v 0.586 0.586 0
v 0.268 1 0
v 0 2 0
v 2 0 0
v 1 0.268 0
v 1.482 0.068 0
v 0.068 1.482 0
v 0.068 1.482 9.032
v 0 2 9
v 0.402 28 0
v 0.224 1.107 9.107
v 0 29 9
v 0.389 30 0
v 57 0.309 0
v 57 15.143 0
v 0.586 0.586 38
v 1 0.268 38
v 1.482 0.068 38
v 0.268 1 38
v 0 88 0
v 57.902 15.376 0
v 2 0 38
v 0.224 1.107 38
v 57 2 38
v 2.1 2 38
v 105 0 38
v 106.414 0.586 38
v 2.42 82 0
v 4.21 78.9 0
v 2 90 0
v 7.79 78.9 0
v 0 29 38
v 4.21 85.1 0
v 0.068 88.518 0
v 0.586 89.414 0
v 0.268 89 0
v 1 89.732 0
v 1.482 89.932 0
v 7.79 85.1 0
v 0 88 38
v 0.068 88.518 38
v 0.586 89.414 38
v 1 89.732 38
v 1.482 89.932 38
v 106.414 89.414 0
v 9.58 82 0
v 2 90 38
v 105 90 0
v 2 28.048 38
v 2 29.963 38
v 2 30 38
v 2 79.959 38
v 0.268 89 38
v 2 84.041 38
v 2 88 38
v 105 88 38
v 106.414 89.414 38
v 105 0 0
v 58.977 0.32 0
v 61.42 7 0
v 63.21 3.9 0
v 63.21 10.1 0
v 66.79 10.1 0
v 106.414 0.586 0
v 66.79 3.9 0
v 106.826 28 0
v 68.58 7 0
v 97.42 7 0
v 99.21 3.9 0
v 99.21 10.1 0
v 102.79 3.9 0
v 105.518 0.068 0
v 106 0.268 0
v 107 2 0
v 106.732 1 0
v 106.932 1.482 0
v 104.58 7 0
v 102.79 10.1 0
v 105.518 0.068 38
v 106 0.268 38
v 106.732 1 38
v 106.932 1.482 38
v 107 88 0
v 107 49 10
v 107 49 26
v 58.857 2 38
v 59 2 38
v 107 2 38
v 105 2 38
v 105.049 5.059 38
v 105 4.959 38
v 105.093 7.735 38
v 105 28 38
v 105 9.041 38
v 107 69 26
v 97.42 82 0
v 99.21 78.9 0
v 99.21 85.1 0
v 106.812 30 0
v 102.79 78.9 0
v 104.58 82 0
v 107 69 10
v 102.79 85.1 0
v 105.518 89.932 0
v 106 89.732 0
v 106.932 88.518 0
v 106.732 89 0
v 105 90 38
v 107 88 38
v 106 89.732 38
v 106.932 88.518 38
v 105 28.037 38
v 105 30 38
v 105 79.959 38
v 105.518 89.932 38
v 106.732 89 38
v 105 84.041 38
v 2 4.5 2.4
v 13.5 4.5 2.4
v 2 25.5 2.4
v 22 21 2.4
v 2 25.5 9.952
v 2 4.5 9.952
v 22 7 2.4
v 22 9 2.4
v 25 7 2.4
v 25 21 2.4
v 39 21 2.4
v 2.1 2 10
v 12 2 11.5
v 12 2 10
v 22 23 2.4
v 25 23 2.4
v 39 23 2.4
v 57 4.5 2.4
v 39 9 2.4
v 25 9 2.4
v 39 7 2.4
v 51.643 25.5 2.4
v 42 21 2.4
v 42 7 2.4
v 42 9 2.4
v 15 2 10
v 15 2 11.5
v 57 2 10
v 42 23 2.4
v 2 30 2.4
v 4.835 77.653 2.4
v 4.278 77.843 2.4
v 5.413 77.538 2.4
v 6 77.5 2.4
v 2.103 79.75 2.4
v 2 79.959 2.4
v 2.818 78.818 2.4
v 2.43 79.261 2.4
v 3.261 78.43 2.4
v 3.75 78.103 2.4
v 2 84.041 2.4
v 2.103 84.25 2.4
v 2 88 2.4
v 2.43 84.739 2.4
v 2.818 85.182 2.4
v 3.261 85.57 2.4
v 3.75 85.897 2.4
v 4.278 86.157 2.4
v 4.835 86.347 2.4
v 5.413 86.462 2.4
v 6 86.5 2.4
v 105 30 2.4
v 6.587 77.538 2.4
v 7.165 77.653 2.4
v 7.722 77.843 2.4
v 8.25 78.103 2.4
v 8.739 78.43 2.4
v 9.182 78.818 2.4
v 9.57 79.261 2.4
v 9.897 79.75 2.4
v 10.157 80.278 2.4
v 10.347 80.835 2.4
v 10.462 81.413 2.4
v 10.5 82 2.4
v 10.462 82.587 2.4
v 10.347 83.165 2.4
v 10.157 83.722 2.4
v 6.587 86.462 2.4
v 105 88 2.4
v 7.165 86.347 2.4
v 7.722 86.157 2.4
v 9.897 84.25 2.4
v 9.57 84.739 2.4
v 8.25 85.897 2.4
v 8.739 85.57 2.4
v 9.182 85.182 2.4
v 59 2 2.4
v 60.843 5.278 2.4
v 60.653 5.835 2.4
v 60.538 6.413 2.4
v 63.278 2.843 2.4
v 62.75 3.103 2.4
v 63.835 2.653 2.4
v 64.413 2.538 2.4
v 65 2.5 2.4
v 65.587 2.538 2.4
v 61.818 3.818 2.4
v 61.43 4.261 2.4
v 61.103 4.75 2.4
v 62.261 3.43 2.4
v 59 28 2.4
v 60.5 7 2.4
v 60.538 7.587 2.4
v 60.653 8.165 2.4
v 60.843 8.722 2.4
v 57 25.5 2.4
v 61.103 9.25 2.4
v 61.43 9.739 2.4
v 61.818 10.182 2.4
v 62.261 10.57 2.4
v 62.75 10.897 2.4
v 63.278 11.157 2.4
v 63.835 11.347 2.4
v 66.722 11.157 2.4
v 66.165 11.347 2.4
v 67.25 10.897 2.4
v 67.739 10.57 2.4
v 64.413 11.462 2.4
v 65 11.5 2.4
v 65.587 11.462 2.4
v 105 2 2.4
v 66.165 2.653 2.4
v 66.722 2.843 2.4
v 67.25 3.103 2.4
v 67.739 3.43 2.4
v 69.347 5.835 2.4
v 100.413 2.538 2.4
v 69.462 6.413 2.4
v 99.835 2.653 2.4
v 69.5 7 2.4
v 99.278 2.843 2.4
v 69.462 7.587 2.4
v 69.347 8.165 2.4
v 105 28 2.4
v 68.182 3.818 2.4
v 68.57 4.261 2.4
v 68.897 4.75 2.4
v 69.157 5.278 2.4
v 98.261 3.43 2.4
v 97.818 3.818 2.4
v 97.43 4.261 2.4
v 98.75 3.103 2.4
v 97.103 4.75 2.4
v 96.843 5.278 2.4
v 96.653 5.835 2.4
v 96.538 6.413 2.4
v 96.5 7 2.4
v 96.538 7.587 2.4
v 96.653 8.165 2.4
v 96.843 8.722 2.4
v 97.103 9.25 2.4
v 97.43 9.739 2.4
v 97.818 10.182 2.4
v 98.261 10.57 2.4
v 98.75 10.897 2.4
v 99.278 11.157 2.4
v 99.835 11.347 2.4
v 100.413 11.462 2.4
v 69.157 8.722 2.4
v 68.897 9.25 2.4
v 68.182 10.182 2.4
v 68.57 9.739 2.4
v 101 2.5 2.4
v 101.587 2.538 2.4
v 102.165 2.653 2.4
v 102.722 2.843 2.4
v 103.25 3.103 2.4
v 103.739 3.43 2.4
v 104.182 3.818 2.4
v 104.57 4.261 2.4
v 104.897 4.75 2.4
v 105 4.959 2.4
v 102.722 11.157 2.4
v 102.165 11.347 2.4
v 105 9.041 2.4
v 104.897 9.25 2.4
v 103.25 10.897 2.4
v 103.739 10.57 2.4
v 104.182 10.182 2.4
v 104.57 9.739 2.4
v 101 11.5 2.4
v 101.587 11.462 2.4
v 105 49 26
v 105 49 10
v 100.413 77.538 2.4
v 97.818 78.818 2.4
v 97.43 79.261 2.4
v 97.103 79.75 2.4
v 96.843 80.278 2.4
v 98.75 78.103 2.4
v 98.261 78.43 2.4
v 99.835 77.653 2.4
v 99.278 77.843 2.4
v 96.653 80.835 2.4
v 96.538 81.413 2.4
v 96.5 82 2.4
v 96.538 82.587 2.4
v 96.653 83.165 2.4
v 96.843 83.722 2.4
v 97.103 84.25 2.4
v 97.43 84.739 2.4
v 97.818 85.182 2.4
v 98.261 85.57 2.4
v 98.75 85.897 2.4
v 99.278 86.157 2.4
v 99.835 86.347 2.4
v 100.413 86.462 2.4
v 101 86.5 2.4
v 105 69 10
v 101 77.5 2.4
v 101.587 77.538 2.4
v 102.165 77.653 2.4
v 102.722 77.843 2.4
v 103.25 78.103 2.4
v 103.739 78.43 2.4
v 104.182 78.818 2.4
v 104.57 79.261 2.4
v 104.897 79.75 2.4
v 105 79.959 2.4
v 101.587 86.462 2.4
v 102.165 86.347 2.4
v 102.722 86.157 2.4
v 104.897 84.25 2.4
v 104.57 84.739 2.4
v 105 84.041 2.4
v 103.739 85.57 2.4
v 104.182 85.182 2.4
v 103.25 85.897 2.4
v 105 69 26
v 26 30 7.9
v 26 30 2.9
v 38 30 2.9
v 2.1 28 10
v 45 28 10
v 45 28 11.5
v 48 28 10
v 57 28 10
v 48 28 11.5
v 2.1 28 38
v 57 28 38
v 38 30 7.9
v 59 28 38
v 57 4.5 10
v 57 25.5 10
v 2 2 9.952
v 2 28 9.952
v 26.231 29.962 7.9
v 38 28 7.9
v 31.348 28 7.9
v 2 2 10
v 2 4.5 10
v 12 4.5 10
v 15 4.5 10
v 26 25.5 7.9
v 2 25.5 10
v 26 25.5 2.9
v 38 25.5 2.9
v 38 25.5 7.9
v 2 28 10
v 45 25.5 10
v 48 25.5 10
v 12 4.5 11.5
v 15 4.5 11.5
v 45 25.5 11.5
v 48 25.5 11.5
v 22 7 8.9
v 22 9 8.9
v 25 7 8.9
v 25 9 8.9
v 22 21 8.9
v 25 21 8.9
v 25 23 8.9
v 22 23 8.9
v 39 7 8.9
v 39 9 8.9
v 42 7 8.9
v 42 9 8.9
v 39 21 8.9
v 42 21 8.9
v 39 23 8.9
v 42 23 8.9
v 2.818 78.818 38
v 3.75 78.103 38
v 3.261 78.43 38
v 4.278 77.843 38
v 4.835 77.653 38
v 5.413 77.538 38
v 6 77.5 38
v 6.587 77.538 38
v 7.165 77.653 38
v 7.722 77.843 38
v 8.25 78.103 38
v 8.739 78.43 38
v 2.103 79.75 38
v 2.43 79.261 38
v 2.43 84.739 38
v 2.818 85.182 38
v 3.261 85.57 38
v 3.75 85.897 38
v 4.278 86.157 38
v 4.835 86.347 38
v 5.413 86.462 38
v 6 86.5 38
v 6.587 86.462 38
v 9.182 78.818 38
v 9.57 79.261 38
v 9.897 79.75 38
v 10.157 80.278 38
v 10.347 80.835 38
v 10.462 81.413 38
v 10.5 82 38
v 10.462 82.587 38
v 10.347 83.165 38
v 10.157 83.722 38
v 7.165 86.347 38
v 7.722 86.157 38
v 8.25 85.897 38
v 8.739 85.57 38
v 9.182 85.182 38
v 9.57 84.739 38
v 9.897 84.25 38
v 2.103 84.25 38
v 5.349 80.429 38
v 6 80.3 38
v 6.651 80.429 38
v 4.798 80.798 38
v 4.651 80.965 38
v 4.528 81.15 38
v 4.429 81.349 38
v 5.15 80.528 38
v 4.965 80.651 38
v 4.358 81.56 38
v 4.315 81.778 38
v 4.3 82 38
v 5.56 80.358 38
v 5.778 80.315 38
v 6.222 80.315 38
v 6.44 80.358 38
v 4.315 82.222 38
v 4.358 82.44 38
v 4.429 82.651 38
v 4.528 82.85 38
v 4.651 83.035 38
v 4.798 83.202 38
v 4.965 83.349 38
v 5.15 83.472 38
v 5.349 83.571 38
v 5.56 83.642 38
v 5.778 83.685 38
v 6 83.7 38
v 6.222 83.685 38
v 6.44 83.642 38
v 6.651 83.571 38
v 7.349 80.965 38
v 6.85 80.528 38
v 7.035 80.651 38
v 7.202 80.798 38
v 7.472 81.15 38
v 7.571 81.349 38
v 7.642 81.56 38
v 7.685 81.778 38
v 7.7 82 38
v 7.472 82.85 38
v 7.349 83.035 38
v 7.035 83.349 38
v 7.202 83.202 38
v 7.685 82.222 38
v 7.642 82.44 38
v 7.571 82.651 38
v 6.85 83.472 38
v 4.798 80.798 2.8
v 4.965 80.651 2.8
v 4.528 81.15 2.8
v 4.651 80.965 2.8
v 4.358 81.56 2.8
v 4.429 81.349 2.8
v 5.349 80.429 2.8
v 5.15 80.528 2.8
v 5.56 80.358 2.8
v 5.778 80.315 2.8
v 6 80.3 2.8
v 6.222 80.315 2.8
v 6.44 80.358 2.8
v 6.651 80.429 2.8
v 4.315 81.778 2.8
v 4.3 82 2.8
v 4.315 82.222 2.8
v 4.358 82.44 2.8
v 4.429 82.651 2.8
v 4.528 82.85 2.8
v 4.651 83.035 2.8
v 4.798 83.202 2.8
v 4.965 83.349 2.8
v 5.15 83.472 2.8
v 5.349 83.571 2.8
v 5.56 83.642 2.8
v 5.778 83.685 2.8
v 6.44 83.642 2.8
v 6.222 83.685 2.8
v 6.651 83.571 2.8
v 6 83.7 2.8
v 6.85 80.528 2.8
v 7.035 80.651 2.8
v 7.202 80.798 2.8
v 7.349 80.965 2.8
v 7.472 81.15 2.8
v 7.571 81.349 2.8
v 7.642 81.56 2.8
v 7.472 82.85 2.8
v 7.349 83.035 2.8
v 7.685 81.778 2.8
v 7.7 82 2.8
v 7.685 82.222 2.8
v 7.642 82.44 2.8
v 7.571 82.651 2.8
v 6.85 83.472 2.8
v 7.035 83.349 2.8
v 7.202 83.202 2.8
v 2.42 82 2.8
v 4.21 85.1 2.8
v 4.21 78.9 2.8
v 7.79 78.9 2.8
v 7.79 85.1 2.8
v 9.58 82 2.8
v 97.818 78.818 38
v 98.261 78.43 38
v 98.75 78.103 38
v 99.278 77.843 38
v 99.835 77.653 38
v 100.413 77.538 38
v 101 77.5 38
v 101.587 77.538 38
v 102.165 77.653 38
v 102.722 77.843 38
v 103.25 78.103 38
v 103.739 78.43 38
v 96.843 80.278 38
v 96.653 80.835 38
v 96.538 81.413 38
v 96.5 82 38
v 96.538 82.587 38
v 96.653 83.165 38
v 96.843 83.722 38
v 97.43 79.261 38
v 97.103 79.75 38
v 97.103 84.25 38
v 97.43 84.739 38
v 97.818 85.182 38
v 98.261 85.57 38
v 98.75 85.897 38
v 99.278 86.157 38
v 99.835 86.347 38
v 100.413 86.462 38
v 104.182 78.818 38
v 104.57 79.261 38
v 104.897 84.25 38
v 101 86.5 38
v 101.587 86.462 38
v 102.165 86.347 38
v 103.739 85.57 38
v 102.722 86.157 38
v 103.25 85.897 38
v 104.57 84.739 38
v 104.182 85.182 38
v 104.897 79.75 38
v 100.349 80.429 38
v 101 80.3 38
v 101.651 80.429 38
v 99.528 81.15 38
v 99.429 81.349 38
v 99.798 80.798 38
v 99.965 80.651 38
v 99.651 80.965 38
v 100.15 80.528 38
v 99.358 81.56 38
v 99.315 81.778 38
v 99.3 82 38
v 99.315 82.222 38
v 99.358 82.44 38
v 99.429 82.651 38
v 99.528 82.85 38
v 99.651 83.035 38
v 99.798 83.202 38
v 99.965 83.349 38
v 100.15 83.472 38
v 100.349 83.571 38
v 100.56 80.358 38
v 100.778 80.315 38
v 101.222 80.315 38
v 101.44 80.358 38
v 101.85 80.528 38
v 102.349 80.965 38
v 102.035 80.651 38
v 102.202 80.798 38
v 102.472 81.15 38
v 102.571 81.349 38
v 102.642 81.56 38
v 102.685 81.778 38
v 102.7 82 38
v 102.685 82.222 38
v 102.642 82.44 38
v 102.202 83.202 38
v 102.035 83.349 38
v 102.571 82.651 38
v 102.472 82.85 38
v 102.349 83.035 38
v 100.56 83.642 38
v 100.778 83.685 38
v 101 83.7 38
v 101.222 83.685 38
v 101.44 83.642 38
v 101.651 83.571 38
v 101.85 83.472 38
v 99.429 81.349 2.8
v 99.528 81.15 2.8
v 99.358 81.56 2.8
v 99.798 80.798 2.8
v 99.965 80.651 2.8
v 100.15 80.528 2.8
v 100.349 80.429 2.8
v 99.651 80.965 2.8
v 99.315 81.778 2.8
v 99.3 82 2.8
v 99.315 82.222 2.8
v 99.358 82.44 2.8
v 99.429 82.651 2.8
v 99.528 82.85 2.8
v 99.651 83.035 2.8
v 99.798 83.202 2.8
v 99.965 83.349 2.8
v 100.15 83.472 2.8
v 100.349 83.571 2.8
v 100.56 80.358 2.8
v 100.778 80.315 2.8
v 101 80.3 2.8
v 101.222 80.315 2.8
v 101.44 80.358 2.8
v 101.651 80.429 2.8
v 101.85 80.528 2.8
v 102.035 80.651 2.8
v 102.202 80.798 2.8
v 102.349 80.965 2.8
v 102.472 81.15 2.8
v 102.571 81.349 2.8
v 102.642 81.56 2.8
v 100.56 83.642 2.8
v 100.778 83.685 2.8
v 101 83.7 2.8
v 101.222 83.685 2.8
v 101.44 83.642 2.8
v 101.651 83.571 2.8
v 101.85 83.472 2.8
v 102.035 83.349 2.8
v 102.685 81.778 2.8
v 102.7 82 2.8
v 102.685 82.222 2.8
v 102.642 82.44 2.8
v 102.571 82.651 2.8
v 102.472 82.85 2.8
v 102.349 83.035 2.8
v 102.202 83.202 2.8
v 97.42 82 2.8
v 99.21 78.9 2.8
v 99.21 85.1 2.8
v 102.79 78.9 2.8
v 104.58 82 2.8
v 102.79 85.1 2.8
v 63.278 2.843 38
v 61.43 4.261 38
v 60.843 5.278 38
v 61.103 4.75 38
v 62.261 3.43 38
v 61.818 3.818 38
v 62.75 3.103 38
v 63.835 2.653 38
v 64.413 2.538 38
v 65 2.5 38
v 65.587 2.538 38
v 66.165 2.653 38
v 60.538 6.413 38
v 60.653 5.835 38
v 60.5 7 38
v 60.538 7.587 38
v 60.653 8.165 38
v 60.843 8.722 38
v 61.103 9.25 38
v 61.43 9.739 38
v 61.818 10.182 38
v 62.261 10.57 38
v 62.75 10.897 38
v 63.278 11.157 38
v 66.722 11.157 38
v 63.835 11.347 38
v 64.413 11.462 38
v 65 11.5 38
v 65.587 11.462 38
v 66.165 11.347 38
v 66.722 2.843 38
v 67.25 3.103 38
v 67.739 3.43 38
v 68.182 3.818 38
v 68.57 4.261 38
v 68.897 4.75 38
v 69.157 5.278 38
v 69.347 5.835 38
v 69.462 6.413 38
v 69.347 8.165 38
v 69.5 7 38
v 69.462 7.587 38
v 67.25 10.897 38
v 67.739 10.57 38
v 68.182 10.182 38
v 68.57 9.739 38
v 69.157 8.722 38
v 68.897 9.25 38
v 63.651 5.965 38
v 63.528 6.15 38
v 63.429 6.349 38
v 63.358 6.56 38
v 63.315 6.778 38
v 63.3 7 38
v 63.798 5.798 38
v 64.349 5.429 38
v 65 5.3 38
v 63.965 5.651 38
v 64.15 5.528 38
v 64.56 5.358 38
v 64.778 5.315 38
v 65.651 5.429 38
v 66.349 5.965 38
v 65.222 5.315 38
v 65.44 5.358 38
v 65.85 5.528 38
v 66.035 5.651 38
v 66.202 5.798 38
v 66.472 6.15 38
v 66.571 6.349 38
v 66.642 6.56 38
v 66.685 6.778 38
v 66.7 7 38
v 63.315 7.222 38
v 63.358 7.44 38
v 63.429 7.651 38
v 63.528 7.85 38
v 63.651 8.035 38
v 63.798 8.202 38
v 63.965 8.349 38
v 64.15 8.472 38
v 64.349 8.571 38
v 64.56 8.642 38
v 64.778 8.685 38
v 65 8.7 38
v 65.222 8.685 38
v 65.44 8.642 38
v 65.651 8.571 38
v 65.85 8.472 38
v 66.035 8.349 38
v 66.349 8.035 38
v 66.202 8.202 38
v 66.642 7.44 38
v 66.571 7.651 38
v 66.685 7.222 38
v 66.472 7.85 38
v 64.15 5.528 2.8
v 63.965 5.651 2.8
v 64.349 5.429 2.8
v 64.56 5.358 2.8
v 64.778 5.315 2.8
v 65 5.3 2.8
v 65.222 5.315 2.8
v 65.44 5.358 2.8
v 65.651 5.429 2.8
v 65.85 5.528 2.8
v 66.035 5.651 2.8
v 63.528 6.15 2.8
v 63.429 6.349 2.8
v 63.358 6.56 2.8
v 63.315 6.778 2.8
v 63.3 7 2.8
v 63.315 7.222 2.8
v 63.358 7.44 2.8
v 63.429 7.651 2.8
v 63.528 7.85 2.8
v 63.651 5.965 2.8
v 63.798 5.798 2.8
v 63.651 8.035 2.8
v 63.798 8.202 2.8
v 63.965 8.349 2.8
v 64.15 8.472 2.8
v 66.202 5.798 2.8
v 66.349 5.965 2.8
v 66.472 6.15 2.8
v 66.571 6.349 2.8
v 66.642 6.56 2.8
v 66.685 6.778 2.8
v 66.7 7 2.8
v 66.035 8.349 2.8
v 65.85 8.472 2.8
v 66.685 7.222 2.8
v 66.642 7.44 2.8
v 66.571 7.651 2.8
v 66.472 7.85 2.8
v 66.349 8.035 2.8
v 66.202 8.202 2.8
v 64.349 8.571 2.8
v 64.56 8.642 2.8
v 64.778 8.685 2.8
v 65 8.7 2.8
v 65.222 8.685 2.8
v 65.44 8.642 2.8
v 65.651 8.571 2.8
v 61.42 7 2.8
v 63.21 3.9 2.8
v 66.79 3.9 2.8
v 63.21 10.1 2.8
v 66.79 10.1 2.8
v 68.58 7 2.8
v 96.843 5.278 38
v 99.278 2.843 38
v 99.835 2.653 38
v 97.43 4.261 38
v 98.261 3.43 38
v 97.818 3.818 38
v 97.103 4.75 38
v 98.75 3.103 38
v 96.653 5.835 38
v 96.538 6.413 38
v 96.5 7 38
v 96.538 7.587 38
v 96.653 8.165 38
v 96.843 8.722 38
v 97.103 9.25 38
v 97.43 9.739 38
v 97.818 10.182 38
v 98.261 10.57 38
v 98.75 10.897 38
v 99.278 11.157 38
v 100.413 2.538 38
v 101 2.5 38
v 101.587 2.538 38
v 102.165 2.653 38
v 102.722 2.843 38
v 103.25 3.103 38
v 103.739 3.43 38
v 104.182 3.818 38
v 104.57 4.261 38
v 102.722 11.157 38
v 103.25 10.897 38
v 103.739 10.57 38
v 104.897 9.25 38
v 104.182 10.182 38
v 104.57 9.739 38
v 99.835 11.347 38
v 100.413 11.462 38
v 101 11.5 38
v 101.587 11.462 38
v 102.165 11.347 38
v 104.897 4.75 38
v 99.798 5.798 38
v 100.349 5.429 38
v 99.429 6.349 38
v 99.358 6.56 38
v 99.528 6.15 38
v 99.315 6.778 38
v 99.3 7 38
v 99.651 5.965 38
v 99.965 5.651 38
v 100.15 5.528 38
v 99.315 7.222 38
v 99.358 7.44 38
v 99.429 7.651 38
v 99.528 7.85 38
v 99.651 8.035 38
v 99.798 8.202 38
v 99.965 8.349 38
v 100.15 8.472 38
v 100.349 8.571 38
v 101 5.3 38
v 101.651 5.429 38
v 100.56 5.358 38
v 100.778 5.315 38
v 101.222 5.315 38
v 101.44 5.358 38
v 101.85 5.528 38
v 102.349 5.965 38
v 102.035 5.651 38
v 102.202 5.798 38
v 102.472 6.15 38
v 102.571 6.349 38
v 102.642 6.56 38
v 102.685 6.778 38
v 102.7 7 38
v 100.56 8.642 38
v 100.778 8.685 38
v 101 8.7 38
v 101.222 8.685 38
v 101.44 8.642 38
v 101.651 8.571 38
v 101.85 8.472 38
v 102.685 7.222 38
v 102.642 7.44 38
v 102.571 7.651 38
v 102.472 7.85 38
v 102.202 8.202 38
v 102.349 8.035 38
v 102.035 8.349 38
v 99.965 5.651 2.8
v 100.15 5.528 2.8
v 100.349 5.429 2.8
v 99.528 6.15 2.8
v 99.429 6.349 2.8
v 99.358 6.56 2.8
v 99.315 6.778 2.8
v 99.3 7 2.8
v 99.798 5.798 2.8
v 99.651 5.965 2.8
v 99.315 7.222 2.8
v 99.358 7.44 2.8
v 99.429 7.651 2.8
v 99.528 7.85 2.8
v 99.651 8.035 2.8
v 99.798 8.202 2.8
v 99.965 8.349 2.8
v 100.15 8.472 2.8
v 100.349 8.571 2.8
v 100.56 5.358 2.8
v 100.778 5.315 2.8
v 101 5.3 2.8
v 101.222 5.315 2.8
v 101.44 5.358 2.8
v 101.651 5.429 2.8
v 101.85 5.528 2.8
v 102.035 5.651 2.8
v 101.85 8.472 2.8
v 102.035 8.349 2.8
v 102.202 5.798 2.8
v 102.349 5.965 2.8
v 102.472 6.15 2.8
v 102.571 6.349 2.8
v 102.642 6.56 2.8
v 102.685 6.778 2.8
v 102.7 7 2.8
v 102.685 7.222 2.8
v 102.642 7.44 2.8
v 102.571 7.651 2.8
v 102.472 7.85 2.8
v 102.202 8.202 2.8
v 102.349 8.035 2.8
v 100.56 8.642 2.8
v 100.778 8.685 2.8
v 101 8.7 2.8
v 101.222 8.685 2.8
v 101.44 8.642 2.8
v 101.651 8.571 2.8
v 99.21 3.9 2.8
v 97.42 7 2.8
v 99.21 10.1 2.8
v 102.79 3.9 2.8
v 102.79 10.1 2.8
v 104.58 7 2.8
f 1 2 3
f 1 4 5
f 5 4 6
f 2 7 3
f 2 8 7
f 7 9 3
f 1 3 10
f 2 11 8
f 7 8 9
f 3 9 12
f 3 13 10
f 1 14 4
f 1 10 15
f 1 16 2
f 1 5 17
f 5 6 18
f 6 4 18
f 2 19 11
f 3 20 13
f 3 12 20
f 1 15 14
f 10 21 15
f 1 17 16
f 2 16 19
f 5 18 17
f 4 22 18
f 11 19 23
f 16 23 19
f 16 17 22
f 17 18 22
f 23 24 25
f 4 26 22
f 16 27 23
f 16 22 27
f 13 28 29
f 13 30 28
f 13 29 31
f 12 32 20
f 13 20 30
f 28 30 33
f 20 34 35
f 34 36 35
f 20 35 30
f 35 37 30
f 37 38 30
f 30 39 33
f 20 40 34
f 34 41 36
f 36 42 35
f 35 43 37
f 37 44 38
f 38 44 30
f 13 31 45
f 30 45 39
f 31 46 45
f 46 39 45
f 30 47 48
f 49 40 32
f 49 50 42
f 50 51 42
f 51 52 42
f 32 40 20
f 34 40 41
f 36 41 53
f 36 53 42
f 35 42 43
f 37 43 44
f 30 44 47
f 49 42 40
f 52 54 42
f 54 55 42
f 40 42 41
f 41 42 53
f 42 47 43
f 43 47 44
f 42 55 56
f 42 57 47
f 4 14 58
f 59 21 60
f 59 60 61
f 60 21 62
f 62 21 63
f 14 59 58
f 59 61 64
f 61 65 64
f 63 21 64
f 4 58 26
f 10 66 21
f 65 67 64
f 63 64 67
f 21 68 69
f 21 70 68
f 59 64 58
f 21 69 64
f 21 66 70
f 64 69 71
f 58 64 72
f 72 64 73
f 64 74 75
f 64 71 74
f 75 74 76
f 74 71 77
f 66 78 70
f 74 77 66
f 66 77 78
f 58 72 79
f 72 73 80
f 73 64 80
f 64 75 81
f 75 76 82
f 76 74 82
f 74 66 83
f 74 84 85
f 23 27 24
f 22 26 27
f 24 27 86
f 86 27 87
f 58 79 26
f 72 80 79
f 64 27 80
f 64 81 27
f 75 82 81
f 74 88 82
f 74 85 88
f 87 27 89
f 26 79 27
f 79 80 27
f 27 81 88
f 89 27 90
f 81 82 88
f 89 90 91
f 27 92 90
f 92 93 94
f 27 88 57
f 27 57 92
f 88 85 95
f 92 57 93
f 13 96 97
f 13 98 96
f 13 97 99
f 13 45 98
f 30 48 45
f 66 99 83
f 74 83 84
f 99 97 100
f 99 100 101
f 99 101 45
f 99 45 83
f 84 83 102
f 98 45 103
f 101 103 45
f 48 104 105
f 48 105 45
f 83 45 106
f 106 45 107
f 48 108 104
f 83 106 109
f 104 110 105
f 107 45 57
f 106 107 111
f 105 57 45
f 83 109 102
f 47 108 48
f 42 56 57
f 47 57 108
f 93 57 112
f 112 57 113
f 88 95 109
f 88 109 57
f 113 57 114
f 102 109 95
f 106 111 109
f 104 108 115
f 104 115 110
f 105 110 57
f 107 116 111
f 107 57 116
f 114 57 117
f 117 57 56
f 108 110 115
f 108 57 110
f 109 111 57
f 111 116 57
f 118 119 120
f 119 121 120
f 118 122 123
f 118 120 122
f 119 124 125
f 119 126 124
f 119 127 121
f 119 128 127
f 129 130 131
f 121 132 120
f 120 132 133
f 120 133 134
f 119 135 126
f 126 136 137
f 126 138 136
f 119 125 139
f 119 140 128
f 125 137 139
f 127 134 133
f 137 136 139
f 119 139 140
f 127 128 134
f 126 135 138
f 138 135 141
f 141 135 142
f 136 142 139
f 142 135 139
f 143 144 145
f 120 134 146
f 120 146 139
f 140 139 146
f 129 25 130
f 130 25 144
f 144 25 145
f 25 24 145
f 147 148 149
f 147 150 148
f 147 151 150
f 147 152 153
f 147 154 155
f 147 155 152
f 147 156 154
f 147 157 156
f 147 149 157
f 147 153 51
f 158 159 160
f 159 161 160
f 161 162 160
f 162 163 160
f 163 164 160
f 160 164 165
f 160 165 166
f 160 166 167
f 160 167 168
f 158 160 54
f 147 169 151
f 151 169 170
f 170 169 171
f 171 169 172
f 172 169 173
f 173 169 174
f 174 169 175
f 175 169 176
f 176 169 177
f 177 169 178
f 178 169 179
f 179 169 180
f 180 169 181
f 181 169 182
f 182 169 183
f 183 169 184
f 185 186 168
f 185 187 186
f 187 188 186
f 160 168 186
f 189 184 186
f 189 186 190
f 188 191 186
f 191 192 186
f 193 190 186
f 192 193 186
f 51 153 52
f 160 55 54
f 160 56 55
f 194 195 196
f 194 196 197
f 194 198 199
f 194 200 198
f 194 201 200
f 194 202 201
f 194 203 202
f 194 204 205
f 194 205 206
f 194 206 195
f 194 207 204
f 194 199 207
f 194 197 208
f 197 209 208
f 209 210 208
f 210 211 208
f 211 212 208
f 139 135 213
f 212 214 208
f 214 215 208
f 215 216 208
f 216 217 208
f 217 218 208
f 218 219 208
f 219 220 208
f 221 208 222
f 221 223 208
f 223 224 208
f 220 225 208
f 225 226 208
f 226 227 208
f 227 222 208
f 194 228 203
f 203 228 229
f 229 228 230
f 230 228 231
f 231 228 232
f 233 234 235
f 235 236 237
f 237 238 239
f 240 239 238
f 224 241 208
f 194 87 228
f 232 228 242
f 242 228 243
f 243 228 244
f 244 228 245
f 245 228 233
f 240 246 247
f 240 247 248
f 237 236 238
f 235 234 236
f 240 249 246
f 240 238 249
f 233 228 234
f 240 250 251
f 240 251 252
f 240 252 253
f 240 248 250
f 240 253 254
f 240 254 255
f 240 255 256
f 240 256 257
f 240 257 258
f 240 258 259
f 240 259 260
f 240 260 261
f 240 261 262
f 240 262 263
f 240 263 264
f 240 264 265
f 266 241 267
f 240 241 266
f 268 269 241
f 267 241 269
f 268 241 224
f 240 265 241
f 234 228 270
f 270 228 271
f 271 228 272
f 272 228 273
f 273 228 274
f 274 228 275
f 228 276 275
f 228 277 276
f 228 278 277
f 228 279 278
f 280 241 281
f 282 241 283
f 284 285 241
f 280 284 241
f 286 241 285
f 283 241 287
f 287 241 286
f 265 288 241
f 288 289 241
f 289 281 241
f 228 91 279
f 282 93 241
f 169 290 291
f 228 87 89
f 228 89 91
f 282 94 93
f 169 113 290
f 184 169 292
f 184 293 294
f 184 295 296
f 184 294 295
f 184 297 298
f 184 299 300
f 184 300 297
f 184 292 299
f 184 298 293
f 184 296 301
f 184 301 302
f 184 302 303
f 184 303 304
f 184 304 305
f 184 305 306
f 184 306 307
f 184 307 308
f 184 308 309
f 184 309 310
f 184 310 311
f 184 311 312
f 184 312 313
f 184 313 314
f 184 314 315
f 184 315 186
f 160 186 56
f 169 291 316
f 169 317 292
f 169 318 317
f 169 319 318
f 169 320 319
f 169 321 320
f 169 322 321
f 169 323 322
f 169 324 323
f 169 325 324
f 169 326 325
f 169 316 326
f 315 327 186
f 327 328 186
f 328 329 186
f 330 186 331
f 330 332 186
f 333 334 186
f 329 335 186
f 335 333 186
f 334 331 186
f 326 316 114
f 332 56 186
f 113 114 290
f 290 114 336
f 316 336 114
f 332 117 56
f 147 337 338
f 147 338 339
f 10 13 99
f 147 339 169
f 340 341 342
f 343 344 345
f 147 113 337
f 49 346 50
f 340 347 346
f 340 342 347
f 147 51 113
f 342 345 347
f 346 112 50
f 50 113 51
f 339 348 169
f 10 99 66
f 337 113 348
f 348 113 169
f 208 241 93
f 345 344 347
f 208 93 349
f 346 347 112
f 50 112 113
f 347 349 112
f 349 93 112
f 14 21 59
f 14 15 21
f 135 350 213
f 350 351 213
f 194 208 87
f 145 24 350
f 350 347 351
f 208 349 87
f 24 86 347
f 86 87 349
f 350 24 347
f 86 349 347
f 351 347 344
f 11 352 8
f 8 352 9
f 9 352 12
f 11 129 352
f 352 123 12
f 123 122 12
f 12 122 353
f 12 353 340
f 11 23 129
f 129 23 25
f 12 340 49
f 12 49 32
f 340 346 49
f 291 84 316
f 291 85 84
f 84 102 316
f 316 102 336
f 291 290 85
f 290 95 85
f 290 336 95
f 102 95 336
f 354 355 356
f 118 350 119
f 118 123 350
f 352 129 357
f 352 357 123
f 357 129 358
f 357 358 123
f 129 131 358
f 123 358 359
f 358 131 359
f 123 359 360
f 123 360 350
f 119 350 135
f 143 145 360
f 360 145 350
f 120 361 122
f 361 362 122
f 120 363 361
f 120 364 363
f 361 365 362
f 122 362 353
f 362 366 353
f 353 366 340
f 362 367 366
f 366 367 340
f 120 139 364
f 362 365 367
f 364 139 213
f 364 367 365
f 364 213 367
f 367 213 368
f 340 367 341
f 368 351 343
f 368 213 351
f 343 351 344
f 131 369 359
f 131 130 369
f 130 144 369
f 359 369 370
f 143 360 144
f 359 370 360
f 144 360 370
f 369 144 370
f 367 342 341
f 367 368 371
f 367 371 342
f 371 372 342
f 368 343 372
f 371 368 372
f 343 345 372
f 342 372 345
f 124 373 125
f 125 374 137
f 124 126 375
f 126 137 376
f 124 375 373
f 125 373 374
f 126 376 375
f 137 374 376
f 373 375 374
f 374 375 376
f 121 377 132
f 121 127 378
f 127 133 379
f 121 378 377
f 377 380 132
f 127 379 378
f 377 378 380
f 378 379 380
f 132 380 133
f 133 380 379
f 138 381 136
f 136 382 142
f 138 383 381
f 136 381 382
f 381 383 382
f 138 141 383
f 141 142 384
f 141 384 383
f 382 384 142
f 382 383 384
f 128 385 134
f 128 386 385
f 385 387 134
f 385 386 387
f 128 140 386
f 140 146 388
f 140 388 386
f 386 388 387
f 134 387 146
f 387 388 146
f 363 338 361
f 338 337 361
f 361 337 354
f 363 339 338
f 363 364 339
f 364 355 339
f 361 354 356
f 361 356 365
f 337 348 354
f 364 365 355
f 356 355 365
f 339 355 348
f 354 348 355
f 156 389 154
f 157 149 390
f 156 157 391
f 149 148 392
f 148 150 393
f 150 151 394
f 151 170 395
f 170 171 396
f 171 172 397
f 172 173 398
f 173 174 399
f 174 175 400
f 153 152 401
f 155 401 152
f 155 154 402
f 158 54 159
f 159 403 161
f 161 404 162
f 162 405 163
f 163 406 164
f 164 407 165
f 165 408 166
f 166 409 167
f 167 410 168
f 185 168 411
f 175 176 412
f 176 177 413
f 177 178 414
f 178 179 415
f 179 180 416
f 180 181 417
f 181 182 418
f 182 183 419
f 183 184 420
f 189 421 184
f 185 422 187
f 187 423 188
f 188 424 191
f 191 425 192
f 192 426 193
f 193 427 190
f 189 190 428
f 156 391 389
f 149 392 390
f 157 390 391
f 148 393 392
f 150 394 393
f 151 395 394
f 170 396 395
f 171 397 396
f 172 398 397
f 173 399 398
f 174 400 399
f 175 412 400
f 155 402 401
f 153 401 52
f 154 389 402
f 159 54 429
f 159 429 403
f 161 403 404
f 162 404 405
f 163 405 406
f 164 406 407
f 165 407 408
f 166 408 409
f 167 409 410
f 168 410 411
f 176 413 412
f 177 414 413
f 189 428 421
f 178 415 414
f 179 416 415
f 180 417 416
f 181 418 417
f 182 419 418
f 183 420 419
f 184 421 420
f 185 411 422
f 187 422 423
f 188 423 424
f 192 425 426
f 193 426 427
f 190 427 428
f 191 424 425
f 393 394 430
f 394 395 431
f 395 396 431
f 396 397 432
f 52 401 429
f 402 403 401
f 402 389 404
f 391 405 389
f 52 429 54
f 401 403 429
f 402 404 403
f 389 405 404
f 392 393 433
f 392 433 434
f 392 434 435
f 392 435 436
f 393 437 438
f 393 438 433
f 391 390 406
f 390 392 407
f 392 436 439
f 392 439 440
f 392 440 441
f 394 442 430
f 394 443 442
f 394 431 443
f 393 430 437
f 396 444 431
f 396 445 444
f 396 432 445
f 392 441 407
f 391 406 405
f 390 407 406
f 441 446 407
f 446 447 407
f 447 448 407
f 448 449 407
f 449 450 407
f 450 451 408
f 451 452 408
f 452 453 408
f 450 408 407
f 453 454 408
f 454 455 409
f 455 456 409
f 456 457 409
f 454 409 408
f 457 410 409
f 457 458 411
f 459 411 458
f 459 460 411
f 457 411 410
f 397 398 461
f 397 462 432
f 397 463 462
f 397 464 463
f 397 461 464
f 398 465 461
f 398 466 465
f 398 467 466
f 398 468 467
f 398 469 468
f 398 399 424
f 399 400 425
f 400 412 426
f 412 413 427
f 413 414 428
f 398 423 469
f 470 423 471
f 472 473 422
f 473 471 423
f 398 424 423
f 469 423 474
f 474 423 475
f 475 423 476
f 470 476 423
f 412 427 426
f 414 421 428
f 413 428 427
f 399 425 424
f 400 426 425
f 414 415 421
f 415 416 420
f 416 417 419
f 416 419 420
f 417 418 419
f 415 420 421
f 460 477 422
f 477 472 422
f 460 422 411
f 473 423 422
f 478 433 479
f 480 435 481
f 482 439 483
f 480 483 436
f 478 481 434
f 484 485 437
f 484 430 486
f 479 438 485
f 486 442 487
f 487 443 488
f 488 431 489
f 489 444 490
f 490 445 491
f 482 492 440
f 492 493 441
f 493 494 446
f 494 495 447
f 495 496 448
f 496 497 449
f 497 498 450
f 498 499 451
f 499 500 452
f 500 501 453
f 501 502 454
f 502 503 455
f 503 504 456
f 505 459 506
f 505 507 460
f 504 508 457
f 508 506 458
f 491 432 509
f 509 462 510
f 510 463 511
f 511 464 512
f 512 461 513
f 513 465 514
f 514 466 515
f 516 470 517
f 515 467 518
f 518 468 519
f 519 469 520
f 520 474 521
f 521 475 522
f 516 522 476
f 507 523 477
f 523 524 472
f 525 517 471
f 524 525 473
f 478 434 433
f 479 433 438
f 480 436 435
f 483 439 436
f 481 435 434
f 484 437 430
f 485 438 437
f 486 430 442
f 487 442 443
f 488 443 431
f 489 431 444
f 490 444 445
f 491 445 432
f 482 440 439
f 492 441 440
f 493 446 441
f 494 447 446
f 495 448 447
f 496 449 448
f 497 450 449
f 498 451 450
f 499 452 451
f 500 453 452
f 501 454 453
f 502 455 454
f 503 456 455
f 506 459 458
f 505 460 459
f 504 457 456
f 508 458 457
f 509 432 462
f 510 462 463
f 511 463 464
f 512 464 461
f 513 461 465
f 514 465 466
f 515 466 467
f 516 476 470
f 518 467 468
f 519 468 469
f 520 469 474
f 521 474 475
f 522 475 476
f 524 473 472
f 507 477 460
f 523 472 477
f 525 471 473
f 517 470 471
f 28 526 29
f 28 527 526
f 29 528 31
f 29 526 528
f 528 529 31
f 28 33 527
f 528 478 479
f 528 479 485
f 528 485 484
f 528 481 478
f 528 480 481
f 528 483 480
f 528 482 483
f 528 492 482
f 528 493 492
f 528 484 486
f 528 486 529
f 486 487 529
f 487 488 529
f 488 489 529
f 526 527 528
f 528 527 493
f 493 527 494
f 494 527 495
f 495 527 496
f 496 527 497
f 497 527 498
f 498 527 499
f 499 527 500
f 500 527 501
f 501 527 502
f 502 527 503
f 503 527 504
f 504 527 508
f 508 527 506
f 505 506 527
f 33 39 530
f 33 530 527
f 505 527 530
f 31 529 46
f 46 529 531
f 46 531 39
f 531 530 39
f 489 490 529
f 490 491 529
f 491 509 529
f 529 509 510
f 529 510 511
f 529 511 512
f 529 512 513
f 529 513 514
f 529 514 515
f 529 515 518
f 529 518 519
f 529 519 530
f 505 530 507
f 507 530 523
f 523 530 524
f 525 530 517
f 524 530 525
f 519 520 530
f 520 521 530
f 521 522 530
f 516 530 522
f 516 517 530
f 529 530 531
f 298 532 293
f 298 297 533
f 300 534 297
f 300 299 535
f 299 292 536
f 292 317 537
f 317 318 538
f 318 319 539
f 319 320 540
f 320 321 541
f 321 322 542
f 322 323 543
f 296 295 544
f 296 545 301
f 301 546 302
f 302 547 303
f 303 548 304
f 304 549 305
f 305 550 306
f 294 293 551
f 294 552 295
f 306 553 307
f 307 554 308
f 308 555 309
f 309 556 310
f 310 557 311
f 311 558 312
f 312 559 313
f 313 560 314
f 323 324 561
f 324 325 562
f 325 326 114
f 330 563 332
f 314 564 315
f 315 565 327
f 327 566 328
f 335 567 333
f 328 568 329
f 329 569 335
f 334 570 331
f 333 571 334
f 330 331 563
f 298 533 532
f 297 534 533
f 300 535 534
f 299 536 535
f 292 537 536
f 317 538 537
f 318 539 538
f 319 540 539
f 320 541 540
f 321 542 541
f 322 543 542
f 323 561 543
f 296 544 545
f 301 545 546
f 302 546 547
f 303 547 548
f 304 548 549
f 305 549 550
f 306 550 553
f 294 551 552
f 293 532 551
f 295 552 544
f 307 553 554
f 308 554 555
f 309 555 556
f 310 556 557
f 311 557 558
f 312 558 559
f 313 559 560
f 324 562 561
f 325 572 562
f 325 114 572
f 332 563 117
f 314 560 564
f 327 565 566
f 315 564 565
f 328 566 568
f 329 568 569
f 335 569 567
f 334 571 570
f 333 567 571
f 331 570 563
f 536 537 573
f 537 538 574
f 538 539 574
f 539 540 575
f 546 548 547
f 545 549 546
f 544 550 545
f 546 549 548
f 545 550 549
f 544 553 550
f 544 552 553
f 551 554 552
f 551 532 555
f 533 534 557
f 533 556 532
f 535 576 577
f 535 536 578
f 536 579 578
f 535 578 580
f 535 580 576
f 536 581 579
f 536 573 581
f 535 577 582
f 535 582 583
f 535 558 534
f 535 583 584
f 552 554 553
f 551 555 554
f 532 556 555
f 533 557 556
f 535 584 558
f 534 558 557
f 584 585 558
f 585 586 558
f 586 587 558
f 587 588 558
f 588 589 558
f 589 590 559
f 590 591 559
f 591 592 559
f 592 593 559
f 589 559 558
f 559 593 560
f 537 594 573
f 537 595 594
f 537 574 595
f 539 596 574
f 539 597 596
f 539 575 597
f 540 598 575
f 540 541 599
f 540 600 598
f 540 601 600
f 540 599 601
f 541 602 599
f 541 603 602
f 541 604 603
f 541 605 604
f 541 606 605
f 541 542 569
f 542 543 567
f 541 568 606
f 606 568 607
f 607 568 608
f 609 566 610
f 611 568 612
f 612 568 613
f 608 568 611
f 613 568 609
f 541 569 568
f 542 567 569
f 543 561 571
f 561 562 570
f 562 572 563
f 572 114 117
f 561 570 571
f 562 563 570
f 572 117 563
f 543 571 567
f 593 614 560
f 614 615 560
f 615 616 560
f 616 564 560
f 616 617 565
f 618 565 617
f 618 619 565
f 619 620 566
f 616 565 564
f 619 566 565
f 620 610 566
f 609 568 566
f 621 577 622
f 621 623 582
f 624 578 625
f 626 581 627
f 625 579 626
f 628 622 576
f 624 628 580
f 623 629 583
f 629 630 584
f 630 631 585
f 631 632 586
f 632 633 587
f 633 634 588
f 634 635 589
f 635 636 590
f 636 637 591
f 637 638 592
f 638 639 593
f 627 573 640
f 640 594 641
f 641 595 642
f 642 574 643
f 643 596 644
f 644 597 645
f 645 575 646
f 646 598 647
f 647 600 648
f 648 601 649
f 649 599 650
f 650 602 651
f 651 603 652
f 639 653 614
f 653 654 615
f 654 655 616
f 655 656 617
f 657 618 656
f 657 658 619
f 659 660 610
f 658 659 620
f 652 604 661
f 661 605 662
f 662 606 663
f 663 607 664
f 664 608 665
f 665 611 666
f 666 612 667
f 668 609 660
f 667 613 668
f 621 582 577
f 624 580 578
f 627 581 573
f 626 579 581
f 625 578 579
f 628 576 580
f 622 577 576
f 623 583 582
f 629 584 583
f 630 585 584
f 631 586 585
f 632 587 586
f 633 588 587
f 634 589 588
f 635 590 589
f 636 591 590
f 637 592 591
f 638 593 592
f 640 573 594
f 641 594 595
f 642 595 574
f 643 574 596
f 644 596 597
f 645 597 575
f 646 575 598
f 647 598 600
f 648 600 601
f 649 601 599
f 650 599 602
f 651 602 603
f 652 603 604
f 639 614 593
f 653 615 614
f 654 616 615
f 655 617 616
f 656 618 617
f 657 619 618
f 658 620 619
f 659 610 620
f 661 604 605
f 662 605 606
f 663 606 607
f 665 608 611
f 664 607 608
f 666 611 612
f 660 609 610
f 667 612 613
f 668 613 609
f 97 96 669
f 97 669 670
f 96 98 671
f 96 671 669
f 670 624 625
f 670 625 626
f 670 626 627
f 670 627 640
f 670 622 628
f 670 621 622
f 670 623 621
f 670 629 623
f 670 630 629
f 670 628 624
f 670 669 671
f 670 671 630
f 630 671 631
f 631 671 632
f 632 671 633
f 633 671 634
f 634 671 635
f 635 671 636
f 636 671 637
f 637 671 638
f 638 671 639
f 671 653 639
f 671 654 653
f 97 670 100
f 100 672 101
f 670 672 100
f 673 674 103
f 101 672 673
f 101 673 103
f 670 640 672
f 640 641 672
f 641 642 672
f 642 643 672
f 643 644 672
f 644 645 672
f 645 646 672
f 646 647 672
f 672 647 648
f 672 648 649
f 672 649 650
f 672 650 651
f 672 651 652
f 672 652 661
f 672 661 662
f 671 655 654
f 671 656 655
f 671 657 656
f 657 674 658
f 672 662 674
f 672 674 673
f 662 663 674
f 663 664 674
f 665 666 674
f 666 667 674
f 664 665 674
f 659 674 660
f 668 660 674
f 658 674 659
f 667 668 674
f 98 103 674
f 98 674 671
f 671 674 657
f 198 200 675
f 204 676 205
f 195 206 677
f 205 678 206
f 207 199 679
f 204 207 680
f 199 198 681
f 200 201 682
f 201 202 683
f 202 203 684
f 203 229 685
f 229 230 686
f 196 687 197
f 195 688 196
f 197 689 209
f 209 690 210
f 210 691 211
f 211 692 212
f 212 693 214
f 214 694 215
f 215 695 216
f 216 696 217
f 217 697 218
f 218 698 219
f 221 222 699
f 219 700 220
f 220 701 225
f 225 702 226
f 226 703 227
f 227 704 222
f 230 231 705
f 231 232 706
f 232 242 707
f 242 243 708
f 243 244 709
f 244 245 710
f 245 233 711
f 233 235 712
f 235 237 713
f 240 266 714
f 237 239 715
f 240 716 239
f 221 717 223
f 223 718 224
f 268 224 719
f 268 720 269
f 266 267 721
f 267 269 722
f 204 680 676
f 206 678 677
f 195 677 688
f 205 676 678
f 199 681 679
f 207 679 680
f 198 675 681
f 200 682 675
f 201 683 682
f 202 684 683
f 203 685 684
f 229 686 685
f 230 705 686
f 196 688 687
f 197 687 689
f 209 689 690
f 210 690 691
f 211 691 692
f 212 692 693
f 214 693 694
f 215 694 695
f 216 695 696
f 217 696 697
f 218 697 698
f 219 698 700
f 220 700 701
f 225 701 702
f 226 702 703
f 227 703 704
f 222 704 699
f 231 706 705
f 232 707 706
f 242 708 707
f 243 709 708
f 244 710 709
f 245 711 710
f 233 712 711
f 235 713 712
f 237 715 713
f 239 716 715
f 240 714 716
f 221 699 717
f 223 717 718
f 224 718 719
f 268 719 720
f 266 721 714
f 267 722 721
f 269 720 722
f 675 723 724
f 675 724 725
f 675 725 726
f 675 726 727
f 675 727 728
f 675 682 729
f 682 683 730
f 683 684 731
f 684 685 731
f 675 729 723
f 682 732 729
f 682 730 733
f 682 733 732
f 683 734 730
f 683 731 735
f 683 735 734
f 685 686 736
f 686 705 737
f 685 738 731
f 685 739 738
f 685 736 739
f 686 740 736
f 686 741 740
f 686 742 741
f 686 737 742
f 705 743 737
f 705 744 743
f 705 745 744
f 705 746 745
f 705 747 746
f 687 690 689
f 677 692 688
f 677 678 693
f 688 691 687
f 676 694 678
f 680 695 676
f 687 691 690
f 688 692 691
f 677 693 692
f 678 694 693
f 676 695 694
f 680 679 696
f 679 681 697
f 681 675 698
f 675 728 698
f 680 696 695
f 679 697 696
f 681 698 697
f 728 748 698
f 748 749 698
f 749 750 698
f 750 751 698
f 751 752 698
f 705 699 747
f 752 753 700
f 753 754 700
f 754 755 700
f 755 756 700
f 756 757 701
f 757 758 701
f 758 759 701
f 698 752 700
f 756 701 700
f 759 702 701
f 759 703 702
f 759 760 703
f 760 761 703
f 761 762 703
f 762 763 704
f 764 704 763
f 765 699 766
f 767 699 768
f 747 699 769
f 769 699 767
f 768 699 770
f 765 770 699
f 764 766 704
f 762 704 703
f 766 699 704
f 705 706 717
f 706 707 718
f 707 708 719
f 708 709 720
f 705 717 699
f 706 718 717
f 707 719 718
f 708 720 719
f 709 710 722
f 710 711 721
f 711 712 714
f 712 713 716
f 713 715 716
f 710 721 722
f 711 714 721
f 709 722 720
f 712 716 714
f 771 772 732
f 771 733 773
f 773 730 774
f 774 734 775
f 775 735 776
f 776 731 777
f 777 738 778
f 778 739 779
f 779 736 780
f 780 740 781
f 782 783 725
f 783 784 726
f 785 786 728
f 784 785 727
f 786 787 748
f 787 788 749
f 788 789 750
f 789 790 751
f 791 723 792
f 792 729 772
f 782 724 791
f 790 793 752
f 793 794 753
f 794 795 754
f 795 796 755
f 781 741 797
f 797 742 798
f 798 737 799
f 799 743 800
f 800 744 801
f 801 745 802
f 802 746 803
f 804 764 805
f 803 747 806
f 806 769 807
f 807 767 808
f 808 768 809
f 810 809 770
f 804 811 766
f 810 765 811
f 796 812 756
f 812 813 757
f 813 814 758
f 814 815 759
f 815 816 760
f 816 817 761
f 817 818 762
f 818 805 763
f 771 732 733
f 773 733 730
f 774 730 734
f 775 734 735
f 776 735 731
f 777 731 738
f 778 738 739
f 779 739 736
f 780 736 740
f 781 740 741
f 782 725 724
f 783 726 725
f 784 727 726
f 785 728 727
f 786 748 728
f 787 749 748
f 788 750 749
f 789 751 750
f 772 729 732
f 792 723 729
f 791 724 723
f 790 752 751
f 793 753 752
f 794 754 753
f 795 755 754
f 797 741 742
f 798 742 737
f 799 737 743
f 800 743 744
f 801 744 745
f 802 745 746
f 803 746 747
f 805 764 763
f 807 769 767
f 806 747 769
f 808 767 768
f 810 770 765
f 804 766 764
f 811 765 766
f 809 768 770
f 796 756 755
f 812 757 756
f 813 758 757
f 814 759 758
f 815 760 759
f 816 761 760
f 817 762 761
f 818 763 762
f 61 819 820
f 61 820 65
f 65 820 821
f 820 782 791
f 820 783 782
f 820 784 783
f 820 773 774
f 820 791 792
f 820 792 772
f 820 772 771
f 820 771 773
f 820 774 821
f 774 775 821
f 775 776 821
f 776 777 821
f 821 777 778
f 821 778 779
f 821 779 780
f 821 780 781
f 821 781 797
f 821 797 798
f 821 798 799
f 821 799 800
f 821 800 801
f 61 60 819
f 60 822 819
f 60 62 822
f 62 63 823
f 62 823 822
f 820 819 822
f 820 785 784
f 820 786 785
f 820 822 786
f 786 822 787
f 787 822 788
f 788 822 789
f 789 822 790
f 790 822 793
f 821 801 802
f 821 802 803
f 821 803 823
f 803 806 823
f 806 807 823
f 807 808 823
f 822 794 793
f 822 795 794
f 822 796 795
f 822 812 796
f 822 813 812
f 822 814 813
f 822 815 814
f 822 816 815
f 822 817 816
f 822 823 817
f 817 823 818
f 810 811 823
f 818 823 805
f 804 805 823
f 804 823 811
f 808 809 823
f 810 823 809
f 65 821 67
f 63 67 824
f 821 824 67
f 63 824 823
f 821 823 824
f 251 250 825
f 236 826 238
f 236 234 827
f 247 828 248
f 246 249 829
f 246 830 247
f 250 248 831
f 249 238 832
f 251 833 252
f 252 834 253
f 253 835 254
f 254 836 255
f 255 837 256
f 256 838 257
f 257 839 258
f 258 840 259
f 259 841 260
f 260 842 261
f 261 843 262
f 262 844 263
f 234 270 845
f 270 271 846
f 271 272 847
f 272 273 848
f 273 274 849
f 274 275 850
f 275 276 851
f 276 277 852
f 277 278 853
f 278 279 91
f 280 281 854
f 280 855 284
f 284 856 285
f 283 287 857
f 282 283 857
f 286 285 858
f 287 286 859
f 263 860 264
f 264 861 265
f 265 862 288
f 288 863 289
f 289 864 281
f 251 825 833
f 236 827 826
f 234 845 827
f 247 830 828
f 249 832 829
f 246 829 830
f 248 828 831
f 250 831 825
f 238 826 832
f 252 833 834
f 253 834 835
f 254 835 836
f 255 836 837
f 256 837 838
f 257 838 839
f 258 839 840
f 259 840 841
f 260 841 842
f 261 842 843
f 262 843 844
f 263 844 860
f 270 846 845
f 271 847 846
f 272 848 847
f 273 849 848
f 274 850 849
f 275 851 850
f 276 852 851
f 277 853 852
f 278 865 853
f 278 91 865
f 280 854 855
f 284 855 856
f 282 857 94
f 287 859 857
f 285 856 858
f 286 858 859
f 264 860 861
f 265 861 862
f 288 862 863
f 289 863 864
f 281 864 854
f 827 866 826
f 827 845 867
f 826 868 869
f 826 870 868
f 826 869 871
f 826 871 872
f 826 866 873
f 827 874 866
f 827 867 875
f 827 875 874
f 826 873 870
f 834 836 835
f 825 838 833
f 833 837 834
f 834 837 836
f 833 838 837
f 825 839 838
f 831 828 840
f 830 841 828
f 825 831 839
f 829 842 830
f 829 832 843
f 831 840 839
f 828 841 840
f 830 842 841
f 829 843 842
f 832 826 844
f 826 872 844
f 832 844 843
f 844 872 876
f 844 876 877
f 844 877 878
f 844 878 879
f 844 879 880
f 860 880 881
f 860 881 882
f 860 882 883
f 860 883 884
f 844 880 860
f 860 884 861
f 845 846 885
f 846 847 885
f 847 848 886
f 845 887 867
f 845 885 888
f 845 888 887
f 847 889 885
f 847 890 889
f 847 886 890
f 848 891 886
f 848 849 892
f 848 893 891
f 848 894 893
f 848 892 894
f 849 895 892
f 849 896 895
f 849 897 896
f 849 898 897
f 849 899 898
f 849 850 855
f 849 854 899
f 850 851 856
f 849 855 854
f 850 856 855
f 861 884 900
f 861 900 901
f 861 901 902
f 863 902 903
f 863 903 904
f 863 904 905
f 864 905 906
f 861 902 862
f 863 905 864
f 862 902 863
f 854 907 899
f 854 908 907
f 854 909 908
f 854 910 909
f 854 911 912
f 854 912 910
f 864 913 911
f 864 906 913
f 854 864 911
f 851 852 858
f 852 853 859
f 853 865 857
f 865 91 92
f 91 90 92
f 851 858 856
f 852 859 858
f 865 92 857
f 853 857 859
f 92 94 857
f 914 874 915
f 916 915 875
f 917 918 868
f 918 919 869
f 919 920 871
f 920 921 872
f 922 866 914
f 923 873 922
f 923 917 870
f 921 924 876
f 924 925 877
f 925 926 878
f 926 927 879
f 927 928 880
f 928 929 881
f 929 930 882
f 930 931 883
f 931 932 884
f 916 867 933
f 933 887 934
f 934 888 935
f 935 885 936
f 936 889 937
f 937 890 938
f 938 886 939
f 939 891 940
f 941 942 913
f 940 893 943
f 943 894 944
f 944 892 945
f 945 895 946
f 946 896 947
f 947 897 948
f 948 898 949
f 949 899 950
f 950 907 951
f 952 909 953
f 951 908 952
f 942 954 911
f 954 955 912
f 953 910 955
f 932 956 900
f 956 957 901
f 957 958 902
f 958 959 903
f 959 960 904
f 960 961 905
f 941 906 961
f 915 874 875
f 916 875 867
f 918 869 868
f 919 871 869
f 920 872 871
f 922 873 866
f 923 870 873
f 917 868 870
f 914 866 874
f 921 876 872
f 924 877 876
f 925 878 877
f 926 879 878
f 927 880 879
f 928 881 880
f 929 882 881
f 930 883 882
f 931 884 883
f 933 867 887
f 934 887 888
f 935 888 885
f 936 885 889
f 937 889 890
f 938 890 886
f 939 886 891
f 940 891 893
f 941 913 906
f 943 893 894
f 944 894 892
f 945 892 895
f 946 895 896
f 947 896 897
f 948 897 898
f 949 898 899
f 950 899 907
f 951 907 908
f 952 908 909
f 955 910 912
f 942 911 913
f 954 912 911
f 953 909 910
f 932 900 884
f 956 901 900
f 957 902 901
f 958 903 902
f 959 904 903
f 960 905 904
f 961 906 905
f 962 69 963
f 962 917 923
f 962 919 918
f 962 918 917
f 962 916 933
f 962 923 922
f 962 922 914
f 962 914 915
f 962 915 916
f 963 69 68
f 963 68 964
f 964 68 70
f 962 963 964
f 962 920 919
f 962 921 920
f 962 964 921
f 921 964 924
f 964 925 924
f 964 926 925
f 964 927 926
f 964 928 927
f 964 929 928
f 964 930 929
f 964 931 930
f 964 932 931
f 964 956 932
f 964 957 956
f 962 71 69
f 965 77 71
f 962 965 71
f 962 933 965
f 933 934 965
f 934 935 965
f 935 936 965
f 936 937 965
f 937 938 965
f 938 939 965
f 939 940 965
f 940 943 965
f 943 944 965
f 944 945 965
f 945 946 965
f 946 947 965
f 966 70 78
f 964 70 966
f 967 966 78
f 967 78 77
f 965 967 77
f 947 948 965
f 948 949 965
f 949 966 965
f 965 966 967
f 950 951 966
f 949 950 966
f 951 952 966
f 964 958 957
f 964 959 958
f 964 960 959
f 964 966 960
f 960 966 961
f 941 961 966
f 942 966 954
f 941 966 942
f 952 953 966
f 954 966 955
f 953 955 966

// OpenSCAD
// Concept v0; mm. Regenerate using dimensions.json and build.py.
difference() {
difference() {
union() {
difference() {
difference() {
union() {
difference() {
difference() {
union() {
difference() {
difference() {
union() {
difference() {
union() {
union() {
union() {
union() {
union() {
union() {
union() {
union() {
difference() {
difference() {
difference() {
difference() {
union() {
union() {
difference() {
translate([0, 0, 0]) {
hull() {
union() {
union() {
union() {
translate([2, 2, 0]) {
cylinder(h=38,r=2,$fn=24);
}
translate([2, 88.0, 0]) {
cylinder(h=38,r=2,$fn=24);
}
}
translate([105.0, 2, 0]) {
cylinder(h=38,r=2,$fn=24);
}
}
translate([105.0, 88.0, 0]) {
cylinder(h=38,r=2,$fn=24);
}
}
}
}
translate([2.0, 2.0, 2.4]) {
cube([103.0, 86.0, 38]);
}
}
translate([0, 28.0, 0]) {
cube([107.0, 2.0, 38]);
}
}
translate([57.0, 0, 0]) {
cube([2.0, 28.0, 38]);
}
}
translate([-0.05, 2.0, 10.0]) {
cube([2.1, 26.0, 38]);
}
}
hull() {
union() {
translate([-0.05, 1.0, 9.0]) {
cube([0.05, 28.0, 38]);
}
translate([2.05, 2.0, 10.0]) {
cube([0.05, 26.0, 38]);
}
}
}
}
translate([104.95, 49.0, 10.0]) {
cube([2.1, 20.0, 16.0]);
}
}
translate([26.0, 27.95, 2.9]) {
cube([12, 2.1, 5]);
}
}
translate([2.0, 2.0, 2.4]) {
cube([55.0, 2.5, 7.6]);
}
}
translate([2.0, 25.5, 2.4]) {
cube([55.0, 2.5, 7.6]);
}
}
translate([12, 2.0, 9.95]) {
cube([3, 2.5, 1.55]);
}
}
translate([45.0, 25.5, 9.95]) {
cube([3, 2.5, 1.55]);
}
}
translate([22.0, 7.0, 2.35]) {
cube([3, 2, 6.55]);
}
}
translate([22.0, 21.0, 2.35]) {
cube([3, 2, 6.55]);
}
}
translate([39.0, 7.0, 2.35]) {
cube([3, 2, 6.55]);
}
}
translate([39.0, 21.0, 2.35]) {
cube([3, 2, 6.55]);
}
}
translate([26.0, 25.45, 2.9]) {
cube([12, 4.6, 5]);
}
}
translate([6, 82.0, 0]) {
cylinder(h=38,r=4.5,$fn=48);
}
}
translate([6, 82.0, -0.05]) {
cylinder(h=38.1,r=1.7,$fn=48);
}
}
translate([6, 82.0, -0.05]) {
cylinder(h=2.8499999999999996,r=3.5795716689756802,$fn=6);
}
}
translate([101.0, 82.0, 0]) {
cylinder(h=38,r=4.5,$fn=48);
}
}
translate([101.0, 82.0, -0.05]) {
cylinder(h=38.1,r=1.7,$fn=48);
}
}
translate([101.0, 82.0, -0.05]) {
cylinder(h=2.8499999999999996,r=3.5795716689756802,$fn=6);
}
}
translate([65.0, 7, 0]) {
cylinder(h=38,r=4.5,$fn=48);
}
}
translate([65.0, 7, -0.05]) {
cylinder(h=38.1,r=1.7,$fn=48);
}
}
translate([65.0, 7, -0.05]) {
cylinder(h=2.8499999999999996,r=3.5795716689756802,$fn=6);
}
}
translate([101.0, 7, 0]) {
cylinder(h=38,r=4.5,$fn=48);
}
}
translate([101.0, 7, -0.05]) {
cylinder(h=38.1,r=1.7,$fn=48);
}
}
translate([101.0, 7, -0.05]) {
cylinder(h=2.8499999999999996,r=3.5795716689756802,$fn=6);
}
}
